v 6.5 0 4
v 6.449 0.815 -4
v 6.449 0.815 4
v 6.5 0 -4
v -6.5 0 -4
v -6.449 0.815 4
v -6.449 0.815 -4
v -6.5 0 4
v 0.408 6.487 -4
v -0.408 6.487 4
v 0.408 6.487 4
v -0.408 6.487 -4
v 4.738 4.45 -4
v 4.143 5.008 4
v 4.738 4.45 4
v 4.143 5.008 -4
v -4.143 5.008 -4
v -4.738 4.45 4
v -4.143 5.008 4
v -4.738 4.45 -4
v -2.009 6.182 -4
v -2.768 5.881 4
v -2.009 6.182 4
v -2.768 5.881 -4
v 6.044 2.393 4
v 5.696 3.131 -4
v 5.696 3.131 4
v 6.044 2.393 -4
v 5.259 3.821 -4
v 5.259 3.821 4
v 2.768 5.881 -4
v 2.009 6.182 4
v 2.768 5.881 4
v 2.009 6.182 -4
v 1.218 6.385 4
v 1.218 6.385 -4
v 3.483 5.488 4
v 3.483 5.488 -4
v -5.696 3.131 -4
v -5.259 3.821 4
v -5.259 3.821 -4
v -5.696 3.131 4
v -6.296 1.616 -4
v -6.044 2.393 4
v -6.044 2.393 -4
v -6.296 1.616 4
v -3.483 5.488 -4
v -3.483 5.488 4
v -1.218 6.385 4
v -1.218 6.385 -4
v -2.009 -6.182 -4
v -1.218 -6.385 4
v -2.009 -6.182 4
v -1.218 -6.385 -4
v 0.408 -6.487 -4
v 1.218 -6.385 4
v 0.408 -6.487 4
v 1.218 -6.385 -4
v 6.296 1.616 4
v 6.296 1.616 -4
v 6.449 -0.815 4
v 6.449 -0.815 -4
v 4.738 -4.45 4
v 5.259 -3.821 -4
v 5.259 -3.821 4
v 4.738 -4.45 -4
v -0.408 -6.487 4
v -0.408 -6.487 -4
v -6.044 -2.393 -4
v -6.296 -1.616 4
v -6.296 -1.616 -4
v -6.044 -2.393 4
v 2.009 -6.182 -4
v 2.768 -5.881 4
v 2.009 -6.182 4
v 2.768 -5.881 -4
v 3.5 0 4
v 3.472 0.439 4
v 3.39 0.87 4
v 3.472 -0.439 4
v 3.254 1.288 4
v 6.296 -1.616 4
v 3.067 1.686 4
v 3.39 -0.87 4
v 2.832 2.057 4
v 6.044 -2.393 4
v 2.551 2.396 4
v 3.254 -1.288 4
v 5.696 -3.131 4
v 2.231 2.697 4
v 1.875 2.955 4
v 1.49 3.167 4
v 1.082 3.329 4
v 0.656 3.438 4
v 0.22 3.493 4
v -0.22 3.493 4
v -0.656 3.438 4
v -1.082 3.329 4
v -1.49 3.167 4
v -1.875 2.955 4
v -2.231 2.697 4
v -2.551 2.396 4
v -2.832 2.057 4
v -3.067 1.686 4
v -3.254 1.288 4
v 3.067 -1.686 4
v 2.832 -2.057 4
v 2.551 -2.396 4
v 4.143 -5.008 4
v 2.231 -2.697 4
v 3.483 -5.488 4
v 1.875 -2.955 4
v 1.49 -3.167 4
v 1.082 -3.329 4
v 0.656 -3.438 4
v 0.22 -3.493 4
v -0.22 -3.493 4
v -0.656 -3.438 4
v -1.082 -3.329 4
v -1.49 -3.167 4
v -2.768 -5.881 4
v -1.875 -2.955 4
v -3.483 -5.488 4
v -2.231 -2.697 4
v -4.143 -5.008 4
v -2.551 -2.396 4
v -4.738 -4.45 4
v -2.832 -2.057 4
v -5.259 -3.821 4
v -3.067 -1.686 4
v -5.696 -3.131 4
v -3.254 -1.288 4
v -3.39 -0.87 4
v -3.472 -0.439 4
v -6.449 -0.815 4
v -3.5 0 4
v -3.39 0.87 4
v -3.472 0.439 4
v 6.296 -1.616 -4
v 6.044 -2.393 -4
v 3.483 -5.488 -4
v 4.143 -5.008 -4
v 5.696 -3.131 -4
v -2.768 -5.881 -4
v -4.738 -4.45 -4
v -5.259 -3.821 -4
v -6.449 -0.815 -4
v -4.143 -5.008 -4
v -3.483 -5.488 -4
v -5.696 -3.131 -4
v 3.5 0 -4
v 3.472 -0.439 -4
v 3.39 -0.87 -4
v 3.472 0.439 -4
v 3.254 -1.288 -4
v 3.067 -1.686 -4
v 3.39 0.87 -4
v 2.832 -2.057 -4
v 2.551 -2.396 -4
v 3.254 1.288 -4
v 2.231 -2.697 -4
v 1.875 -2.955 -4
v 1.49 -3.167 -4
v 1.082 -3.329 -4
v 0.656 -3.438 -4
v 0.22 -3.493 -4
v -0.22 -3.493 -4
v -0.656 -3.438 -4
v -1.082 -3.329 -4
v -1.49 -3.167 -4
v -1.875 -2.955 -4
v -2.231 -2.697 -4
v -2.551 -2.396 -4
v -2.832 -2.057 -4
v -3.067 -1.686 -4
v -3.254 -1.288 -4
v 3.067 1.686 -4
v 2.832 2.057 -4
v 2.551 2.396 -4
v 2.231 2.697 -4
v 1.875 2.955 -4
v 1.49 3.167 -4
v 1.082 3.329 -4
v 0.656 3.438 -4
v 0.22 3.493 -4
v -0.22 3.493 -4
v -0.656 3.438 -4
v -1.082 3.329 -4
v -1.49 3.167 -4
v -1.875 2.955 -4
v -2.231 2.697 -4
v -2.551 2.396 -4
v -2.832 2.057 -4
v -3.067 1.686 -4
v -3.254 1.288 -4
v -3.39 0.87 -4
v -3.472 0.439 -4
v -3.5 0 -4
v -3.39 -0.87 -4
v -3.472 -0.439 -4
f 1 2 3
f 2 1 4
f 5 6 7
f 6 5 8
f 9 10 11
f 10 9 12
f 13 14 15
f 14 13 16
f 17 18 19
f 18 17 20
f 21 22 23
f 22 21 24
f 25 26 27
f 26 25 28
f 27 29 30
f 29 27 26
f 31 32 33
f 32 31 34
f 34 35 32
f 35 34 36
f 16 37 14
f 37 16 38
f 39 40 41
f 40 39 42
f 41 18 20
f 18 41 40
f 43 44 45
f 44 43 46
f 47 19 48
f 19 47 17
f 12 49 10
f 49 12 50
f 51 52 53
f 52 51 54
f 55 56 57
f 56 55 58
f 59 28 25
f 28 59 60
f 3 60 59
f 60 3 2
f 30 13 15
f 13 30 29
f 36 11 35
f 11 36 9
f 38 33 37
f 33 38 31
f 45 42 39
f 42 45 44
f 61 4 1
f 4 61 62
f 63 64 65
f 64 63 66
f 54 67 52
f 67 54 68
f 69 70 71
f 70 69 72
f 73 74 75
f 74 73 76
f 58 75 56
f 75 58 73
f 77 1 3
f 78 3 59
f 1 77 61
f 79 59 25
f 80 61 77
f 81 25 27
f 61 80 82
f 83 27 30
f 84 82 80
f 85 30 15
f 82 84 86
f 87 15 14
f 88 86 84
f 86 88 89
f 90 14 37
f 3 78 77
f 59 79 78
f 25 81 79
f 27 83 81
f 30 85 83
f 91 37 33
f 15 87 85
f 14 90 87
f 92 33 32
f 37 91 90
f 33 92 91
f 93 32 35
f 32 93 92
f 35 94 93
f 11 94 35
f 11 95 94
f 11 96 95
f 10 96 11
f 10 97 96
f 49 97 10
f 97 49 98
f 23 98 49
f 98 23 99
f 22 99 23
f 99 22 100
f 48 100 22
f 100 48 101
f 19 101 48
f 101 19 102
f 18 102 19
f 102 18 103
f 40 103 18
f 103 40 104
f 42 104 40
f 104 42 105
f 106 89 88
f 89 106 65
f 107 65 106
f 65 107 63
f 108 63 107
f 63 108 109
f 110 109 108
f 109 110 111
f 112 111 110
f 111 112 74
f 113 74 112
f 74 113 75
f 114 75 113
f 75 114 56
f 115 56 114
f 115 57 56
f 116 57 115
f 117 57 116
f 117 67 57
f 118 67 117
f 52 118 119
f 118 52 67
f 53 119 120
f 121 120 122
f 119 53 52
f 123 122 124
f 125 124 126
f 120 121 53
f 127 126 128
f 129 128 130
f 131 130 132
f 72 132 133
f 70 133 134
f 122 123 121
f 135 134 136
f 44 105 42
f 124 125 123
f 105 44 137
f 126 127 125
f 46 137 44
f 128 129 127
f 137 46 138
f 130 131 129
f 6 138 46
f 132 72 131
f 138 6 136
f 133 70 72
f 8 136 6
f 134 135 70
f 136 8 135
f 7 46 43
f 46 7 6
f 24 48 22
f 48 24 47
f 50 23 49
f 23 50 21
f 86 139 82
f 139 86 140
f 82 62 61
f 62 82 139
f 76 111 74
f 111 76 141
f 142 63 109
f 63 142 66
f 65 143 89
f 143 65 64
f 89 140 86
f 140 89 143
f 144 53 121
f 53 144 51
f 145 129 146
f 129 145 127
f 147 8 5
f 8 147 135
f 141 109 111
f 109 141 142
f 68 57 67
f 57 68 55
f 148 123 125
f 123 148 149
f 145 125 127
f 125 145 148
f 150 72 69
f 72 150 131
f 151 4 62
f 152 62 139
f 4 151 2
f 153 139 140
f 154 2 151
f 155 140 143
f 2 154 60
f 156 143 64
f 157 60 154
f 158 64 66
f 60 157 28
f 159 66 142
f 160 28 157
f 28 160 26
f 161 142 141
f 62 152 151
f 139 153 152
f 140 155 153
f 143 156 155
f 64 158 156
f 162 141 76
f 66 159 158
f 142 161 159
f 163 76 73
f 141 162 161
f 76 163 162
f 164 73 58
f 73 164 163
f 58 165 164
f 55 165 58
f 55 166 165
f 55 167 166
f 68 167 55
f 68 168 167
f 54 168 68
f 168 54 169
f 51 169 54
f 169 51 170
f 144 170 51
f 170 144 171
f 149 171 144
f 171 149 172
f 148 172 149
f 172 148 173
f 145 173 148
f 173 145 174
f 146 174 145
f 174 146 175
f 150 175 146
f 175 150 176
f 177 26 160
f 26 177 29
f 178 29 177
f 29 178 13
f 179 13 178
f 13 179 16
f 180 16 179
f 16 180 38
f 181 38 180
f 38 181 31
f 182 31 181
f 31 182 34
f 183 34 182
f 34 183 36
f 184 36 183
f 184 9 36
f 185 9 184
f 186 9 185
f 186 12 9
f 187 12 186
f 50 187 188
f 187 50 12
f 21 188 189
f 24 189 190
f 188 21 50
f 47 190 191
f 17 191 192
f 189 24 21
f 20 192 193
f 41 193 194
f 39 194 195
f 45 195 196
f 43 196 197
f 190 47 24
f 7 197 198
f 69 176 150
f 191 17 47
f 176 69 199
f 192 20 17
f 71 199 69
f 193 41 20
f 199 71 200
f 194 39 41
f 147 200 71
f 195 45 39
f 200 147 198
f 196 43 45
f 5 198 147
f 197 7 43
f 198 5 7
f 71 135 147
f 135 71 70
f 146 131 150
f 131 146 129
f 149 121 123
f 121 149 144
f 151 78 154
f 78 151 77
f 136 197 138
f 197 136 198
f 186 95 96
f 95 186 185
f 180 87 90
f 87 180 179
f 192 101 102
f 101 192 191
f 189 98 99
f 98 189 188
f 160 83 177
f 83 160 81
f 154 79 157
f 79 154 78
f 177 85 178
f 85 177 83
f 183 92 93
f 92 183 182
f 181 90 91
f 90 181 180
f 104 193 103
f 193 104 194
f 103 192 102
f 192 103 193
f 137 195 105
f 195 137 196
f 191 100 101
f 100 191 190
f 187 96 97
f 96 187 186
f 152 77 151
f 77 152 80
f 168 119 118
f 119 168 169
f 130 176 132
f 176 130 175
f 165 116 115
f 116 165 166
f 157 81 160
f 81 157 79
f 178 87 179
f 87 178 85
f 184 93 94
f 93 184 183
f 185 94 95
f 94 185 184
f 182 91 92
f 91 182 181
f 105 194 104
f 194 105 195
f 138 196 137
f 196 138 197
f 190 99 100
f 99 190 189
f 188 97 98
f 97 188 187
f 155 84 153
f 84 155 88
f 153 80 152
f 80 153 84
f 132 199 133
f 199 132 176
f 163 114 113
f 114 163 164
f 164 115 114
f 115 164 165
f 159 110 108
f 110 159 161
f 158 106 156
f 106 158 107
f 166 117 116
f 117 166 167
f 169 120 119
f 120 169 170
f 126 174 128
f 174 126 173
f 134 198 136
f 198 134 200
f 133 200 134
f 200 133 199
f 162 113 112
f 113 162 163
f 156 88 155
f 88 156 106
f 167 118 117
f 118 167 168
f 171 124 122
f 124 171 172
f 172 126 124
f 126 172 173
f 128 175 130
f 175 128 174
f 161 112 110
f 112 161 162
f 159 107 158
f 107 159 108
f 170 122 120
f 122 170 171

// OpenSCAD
$fn = 50;


difference() {
	union() {
		translate(v = [0, 0, -4.0000000000]) {
			cylinder(h = 8, r = 6.5000000000);
		}
	}
	union() {
		translate(v = [0, 0, -100.0000000000]) {
			cylinder(h = 200, r = 3.5000000000);
		}
	}
}
